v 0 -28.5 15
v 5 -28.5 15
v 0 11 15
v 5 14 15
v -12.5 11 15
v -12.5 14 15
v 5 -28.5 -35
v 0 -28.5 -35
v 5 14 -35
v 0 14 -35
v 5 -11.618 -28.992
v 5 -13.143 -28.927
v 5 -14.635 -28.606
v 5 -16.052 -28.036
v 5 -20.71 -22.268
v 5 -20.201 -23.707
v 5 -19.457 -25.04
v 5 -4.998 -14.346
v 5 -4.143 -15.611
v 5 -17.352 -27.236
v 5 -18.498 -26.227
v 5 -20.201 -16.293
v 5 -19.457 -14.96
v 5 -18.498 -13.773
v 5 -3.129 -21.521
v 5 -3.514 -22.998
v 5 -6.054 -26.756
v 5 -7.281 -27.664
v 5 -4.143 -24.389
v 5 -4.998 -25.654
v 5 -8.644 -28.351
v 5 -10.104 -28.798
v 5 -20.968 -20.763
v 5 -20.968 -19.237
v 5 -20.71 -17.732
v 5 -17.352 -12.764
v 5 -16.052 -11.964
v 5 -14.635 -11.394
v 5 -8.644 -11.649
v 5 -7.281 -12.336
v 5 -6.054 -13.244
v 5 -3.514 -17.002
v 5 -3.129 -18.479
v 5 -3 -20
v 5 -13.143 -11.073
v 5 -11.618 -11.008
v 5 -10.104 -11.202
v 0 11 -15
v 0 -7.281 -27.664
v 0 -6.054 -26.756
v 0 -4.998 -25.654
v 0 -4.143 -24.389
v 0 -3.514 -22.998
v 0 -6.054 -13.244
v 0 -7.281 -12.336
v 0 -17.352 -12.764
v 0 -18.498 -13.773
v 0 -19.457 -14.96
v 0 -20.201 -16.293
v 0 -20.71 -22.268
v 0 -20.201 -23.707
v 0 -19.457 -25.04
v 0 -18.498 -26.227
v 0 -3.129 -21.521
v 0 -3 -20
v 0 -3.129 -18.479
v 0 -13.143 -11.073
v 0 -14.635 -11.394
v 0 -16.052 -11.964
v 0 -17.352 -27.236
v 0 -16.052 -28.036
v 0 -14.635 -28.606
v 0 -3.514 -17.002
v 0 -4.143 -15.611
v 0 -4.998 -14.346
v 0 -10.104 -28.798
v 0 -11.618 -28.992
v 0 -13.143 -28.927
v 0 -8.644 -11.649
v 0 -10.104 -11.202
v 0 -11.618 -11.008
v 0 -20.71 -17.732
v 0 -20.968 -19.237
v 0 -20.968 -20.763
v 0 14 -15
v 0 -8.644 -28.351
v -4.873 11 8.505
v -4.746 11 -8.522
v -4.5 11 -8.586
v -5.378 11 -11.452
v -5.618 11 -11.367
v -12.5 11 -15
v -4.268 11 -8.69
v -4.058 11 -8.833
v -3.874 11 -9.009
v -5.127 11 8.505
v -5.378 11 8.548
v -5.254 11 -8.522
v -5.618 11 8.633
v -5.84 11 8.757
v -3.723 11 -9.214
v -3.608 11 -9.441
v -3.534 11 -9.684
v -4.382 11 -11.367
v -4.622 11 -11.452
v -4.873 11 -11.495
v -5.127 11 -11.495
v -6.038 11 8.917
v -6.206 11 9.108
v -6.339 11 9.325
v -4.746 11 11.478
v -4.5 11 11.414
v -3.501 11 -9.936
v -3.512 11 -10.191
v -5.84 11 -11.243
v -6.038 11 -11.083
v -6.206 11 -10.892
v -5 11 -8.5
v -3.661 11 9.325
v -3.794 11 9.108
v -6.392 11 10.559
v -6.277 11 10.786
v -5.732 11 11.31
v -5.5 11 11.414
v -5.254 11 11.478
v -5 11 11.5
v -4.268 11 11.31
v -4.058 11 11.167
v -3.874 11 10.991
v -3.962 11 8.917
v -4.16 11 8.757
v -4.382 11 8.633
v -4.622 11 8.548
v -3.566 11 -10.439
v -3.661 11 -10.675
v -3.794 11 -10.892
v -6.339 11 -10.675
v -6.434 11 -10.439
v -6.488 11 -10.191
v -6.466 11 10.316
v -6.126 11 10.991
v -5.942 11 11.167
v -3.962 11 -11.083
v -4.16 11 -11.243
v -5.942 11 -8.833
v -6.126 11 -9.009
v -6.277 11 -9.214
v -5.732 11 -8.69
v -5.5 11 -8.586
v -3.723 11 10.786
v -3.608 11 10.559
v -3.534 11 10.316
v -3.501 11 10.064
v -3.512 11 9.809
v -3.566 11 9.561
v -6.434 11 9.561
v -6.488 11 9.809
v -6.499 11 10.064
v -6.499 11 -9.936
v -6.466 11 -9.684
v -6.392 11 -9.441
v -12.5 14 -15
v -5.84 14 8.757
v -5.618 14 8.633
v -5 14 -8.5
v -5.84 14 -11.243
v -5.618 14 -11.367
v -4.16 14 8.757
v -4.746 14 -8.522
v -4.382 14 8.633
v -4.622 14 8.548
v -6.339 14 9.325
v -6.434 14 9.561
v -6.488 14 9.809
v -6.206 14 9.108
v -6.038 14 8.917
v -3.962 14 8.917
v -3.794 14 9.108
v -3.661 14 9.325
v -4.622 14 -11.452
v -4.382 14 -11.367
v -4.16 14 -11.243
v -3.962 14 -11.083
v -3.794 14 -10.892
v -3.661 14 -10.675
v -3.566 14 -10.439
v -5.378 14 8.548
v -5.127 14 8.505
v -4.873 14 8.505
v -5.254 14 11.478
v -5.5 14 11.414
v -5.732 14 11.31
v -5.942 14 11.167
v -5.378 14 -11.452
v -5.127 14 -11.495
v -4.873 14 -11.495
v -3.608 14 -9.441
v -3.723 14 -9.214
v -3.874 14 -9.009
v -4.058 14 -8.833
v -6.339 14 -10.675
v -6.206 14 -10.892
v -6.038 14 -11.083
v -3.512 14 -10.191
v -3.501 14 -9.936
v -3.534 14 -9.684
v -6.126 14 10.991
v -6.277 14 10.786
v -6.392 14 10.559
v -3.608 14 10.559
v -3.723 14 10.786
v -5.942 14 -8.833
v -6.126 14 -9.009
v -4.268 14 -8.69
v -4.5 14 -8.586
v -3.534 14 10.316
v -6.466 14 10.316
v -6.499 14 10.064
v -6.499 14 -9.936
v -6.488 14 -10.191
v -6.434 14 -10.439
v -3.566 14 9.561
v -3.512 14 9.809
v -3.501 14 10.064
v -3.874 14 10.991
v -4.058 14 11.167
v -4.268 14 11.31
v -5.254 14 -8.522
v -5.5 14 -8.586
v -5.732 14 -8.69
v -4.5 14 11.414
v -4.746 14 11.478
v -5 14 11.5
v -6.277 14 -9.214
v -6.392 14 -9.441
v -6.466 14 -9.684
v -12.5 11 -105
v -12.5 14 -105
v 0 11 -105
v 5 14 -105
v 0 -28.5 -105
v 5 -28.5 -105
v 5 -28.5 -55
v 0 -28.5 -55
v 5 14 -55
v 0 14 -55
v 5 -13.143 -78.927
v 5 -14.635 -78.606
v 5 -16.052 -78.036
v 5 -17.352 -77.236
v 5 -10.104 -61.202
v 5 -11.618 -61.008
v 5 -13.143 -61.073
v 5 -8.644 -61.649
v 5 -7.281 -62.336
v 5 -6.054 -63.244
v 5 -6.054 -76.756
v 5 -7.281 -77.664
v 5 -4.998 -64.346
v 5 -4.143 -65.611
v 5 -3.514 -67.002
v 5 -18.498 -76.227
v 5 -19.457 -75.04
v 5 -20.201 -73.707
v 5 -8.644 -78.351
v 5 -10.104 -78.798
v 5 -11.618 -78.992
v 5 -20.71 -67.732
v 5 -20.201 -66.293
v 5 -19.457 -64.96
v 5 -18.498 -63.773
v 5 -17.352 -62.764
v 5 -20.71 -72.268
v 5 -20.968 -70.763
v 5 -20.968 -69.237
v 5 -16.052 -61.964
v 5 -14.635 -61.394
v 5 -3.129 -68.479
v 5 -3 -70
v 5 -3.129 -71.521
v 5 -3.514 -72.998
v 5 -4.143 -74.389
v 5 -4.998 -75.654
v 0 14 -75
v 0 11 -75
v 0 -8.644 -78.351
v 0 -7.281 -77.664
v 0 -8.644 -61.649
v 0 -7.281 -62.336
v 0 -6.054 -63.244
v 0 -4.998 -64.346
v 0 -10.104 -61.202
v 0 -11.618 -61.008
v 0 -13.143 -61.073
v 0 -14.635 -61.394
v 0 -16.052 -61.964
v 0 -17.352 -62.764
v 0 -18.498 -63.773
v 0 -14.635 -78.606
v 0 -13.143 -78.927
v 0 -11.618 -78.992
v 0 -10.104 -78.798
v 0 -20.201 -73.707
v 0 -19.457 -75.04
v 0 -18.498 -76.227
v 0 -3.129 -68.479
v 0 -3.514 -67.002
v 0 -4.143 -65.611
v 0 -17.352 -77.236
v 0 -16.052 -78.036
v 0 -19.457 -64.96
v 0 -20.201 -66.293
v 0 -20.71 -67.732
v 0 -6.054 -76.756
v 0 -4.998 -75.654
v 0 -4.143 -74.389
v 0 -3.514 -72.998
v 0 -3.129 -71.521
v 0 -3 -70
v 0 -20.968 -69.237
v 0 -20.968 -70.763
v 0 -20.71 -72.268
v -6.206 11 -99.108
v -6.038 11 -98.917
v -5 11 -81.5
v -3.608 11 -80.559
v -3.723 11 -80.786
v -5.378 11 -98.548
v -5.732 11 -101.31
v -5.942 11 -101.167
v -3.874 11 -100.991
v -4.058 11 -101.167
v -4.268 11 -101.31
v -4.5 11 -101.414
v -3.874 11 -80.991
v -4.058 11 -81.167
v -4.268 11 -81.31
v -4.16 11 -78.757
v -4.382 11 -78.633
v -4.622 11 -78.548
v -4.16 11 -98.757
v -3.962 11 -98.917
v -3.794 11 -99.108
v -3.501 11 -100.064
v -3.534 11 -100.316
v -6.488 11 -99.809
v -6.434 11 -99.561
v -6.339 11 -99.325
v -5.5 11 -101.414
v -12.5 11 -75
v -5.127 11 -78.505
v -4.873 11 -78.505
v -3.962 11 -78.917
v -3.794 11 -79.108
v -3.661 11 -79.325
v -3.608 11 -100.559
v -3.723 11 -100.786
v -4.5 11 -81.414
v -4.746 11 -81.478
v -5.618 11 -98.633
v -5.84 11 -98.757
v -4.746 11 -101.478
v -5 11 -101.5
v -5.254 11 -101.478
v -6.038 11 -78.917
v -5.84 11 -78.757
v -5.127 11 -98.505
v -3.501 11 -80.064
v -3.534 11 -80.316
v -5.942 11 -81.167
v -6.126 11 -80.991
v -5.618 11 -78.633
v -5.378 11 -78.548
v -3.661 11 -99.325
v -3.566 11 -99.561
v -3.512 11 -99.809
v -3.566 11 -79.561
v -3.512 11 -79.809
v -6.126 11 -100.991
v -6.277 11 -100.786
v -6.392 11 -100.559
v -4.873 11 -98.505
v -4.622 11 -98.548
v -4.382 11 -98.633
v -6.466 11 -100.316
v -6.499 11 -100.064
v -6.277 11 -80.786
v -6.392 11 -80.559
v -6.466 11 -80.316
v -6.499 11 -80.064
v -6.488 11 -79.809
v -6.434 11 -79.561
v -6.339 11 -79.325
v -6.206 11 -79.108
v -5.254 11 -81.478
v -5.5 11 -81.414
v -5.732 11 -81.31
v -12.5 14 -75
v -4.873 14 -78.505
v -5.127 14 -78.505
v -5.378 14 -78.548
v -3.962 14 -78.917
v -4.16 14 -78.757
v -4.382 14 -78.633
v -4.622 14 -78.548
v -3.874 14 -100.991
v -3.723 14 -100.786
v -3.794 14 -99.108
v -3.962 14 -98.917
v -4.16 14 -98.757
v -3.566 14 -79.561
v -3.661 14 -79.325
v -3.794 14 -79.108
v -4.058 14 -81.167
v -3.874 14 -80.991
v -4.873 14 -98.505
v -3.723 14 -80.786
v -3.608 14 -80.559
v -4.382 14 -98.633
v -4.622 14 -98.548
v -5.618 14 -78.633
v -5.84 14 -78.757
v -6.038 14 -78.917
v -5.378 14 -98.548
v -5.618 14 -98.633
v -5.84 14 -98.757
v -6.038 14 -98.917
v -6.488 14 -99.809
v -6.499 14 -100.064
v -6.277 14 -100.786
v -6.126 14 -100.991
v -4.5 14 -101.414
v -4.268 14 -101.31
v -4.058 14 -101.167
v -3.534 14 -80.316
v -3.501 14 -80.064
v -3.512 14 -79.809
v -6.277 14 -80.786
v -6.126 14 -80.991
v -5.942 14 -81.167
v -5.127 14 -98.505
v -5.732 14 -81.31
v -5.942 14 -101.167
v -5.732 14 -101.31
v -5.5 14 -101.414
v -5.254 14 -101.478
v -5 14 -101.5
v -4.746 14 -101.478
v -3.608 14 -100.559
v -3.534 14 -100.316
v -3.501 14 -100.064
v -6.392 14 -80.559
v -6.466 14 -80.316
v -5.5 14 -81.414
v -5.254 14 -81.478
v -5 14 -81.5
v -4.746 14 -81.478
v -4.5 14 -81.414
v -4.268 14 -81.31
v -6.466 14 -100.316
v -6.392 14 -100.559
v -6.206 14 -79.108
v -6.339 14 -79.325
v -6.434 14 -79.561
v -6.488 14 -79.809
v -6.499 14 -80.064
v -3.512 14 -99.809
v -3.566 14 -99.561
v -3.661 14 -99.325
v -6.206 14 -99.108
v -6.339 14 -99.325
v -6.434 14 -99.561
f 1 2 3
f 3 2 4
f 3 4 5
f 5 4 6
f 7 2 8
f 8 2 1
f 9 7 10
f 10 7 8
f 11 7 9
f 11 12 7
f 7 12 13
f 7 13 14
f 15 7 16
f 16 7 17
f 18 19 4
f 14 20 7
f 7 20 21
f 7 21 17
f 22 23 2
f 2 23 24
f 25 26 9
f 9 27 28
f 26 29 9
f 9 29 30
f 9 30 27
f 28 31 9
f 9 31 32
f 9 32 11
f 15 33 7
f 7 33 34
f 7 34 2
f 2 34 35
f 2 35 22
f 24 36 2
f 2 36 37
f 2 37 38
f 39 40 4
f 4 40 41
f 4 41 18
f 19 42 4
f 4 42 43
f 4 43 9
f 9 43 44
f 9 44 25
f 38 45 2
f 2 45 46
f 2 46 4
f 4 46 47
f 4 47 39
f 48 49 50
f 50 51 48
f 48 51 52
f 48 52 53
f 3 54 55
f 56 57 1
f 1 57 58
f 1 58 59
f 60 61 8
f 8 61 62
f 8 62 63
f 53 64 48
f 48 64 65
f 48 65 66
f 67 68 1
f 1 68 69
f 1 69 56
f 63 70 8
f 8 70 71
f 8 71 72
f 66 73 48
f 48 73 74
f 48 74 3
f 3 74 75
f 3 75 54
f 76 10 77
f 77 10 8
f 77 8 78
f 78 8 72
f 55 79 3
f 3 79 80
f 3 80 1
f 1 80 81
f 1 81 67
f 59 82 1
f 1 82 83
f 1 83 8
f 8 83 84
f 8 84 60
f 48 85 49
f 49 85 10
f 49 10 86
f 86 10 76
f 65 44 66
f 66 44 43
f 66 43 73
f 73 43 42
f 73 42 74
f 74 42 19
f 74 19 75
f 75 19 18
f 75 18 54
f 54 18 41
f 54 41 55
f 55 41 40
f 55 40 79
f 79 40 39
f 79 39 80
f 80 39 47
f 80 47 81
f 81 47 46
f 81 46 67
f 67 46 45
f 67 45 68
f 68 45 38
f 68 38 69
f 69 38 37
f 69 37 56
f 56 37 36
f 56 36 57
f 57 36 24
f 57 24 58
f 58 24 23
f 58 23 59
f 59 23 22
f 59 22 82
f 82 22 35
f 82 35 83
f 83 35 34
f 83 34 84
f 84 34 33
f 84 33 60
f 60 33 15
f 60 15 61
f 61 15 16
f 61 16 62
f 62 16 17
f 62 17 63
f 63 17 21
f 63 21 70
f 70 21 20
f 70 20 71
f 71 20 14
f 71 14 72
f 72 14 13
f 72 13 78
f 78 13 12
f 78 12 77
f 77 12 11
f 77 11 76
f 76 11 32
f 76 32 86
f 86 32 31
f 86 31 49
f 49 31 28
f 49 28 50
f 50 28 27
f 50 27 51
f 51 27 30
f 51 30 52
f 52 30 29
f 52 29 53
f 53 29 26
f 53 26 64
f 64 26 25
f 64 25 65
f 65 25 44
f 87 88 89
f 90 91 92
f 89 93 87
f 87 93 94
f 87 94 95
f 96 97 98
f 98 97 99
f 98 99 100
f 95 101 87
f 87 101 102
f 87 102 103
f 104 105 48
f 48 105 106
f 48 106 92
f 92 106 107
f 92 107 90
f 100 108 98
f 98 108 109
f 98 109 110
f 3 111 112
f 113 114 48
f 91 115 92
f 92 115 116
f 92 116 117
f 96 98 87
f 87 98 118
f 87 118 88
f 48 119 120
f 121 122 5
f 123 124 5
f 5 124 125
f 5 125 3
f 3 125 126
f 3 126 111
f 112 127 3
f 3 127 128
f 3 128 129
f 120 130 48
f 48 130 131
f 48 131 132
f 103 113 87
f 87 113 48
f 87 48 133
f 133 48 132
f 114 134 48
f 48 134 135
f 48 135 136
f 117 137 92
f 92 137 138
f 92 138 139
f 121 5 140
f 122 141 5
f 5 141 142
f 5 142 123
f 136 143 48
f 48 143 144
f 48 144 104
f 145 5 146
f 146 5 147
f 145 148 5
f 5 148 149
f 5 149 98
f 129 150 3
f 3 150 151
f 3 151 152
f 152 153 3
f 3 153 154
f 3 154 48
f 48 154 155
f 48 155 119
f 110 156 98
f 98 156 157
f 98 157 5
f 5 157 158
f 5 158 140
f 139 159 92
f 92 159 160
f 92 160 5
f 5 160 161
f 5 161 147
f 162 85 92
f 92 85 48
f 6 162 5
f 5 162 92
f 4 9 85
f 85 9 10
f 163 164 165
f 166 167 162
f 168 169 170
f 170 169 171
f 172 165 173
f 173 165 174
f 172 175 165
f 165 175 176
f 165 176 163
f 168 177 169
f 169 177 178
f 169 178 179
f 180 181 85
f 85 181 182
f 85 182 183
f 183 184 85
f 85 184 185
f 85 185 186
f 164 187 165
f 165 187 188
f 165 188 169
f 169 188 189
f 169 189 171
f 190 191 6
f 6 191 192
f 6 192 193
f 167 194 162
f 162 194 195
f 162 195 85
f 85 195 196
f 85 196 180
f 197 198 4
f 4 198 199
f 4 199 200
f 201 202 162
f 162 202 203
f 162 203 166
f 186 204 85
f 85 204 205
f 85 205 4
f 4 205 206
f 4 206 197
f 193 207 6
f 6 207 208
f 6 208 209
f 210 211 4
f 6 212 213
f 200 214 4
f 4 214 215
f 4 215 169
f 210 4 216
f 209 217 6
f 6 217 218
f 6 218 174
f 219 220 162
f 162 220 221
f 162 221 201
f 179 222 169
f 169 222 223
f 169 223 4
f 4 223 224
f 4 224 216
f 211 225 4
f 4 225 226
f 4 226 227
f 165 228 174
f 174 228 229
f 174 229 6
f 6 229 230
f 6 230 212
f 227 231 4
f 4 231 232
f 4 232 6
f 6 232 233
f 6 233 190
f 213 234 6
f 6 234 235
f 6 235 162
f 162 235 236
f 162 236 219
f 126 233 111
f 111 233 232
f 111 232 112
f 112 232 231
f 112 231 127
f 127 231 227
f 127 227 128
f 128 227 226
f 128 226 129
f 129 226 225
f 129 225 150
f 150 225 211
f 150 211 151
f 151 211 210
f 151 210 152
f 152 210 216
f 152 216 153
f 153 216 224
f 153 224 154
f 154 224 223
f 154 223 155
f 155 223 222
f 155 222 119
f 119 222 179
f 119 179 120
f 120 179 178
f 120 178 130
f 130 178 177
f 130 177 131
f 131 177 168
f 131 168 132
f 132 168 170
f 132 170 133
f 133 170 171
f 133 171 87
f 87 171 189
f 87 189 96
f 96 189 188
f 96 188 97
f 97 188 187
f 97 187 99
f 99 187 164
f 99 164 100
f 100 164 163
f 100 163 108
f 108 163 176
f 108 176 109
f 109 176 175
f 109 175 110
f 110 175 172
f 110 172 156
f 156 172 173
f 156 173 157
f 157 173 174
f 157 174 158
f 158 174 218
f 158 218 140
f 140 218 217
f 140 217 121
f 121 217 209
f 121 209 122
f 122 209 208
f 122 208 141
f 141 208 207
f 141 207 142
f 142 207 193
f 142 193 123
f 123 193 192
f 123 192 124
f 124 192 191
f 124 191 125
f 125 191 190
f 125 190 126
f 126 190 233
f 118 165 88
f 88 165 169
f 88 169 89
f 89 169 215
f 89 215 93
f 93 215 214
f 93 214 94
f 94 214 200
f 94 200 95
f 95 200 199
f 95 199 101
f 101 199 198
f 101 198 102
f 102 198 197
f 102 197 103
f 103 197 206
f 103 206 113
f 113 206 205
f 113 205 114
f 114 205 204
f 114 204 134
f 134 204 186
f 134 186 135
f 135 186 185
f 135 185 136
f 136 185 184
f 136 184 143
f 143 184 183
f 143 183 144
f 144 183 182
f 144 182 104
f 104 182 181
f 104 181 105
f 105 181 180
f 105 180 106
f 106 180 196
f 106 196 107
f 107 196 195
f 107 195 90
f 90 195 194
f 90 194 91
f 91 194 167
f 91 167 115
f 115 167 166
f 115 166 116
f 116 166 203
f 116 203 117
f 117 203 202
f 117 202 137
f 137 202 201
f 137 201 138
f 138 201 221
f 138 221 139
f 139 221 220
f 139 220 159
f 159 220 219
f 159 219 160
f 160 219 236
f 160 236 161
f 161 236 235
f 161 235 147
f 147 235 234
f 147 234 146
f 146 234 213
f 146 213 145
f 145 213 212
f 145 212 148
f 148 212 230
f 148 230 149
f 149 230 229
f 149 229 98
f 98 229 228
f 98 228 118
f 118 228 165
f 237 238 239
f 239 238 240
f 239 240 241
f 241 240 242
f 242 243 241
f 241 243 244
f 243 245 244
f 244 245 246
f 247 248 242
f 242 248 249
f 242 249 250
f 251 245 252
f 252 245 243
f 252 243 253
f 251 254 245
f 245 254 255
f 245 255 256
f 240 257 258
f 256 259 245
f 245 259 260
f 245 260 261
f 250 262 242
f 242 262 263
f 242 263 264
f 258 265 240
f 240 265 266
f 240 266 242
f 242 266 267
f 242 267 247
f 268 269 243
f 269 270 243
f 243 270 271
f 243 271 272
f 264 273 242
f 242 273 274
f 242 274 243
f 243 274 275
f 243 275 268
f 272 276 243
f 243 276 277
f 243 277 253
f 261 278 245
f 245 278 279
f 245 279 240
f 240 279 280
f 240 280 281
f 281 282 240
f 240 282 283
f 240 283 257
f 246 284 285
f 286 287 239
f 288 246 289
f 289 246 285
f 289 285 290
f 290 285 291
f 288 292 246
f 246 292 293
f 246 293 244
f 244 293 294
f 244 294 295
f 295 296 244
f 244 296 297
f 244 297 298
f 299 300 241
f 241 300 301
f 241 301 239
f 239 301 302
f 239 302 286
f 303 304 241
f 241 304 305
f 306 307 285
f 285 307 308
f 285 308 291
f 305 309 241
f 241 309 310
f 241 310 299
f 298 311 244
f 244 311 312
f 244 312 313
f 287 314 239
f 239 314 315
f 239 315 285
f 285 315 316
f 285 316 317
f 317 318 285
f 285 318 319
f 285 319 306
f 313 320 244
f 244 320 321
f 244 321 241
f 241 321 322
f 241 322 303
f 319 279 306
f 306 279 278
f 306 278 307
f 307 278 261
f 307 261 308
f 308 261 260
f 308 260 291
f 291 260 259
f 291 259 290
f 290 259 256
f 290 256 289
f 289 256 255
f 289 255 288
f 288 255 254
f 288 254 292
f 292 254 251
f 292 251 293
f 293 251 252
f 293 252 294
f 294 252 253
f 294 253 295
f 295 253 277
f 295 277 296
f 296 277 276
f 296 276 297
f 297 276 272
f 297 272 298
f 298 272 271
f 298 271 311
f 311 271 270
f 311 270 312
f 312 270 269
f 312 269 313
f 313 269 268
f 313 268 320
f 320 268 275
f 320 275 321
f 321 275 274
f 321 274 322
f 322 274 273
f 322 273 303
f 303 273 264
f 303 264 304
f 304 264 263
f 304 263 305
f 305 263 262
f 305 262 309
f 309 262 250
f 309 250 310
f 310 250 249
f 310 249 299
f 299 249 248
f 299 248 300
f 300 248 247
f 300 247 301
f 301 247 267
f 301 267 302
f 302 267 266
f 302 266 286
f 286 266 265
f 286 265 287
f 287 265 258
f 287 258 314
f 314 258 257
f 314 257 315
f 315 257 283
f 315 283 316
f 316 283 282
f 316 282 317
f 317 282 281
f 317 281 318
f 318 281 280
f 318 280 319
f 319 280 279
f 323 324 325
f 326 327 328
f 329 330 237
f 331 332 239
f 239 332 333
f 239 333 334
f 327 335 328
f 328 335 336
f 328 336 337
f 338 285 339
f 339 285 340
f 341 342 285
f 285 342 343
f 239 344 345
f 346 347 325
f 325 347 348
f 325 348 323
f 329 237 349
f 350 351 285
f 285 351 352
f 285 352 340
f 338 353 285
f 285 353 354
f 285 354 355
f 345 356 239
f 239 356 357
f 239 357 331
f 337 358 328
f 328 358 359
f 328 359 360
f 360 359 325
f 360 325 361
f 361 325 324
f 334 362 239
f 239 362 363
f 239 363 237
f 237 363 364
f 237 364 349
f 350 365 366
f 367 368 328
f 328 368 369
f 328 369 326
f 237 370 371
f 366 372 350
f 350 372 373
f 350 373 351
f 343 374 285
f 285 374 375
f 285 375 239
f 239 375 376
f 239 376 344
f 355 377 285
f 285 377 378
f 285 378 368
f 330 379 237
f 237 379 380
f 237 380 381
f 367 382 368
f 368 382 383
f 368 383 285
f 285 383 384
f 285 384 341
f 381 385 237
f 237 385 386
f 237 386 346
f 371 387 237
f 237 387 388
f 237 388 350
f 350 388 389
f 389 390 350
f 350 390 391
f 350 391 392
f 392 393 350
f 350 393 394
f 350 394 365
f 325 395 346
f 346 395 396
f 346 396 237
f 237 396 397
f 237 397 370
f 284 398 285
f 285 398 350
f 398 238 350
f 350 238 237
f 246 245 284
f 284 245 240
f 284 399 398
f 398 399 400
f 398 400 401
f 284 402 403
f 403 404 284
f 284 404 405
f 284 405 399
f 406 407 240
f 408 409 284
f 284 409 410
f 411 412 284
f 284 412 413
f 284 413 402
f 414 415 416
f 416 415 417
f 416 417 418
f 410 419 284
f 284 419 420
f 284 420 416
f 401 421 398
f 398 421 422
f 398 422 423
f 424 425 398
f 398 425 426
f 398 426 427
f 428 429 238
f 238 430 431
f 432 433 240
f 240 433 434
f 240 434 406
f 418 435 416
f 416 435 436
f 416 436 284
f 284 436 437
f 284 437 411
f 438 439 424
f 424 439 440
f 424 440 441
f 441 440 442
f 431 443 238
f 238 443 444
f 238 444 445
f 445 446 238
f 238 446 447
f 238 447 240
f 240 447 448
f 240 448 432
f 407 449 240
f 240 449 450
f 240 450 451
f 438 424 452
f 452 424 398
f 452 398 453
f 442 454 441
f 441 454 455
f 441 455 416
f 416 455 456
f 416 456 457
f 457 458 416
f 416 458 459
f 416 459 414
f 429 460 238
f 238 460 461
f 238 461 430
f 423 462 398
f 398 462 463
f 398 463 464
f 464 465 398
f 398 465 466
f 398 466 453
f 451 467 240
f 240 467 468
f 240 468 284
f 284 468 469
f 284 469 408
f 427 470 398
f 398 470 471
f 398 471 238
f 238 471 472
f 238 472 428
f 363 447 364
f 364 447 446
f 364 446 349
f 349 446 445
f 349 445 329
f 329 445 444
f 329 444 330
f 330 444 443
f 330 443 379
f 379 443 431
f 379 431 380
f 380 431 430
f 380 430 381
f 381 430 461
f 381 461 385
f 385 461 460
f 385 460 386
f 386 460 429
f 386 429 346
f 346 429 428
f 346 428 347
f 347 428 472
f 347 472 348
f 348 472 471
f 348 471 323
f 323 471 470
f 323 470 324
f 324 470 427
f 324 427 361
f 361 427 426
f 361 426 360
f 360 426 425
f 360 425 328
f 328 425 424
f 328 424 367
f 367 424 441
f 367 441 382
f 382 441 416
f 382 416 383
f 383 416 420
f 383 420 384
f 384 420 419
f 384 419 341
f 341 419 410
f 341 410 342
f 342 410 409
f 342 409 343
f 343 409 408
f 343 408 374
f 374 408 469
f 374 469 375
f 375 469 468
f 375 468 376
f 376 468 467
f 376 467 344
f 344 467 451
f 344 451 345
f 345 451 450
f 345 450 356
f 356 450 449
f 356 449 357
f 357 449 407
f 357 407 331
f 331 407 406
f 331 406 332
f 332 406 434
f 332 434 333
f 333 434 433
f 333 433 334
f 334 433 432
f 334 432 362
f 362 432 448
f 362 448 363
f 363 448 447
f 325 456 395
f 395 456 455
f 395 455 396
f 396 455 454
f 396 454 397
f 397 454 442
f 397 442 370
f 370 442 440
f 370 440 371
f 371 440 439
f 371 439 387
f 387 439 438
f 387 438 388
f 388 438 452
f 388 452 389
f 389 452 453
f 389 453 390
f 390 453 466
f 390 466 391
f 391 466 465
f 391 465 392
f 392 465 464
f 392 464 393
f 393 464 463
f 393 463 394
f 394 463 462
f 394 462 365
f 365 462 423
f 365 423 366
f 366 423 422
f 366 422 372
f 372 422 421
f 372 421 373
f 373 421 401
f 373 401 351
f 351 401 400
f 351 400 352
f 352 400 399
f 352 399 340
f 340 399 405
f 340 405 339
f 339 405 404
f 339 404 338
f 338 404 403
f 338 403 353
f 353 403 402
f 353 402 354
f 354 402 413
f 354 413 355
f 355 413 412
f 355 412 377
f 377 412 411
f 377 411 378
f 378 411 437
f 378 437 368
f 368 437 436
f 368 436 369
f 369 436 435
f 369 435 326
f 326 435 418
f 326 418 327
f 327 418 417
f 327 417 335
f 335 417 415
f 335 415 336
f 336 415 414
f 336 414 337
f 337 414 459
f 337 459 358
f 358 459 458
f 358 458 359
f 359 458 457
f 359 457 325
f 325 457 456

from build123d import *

# Parameters (mm, degrees)
EXTRUDE_1_DEPTH     = 5
SKETCH_2_R          = 9
CUT_EXTRUDE_1_DEPTH = 5
EXTRUDE_2_DEPTH     = 3
SKETCH_6_R          = 1.5
CUT_EXTRUDE_2_DEPTH = 3


with BuildPart() as part:
    # 草图1 → 凸台-拉伸1 (new body)
    with BuildSketch(Plane(origin=(0, 0, 0), x_dir=(0, 0, -1), z_dir=(1, 0, 0))):
        Polygon((-15, -28.5), (-15, 11), (15, 11), (35, 11), (35, -28.5), (15, -28.5), align=None)
    extrude(amount=EXTRUDE_1_DEPTH)

    # 草图2 → 切除-拉伸1 (cut)
    with BuildSketch(Plane(origin=(5, 0, 0), x_dir=(0, 0, -1), z_dir=(1, 0, 0))):
        with Locations(Location((20, -12, 0), (0, 0, 90))):
            Circle(SKETCH_2_R)
    extrude(amount=-CUT_EXTRUDE_1_DEPTH, mode=Mode.SUBTRACT)

    # 草图3 → 凸台-拉伸2 (add)
    with BuildSketch(Plane(origin=(0, 11, 0), x_dir=(1, 0, 0), z_dir=(0, 1, 0))):
        Polygon((5, 15), (5, 35), (0, 35), (0, 15), (-12.5, 15), (-12.5, -15), (5, -15), align=None)
    extrude(amount=EXTRUDE_2_DEPTH)

    # 草图6 → 切除-拉伸2 (cut)
    with BuildSketch(Plane(origin=(0, 14, 0), x_dir=(1, 0, 0), z_dir=(0, 1, 0))):
        with Locations(Location((-5, 10, 0), (0, 0, 270))):
            Circle(SKETCH_6_R)
        with Locations(Location((-5, -10, 0), (0, 0, 270))):
            Circle(SKETCH_6_R)
    extrude(amount=-CUT_EXTRUDE_2_DEPTH, mode=Mode.SUBTRACT)


with BuildPart() as body_2:
    # 镜向4: mirrored copy
    add(part.part.mirror(Plane(origin=(0, 0, -45), x_dir=(1, 0, 0), z_dir=(0, 0, -1))))


solid = Compound([part.part, body_2.part])
